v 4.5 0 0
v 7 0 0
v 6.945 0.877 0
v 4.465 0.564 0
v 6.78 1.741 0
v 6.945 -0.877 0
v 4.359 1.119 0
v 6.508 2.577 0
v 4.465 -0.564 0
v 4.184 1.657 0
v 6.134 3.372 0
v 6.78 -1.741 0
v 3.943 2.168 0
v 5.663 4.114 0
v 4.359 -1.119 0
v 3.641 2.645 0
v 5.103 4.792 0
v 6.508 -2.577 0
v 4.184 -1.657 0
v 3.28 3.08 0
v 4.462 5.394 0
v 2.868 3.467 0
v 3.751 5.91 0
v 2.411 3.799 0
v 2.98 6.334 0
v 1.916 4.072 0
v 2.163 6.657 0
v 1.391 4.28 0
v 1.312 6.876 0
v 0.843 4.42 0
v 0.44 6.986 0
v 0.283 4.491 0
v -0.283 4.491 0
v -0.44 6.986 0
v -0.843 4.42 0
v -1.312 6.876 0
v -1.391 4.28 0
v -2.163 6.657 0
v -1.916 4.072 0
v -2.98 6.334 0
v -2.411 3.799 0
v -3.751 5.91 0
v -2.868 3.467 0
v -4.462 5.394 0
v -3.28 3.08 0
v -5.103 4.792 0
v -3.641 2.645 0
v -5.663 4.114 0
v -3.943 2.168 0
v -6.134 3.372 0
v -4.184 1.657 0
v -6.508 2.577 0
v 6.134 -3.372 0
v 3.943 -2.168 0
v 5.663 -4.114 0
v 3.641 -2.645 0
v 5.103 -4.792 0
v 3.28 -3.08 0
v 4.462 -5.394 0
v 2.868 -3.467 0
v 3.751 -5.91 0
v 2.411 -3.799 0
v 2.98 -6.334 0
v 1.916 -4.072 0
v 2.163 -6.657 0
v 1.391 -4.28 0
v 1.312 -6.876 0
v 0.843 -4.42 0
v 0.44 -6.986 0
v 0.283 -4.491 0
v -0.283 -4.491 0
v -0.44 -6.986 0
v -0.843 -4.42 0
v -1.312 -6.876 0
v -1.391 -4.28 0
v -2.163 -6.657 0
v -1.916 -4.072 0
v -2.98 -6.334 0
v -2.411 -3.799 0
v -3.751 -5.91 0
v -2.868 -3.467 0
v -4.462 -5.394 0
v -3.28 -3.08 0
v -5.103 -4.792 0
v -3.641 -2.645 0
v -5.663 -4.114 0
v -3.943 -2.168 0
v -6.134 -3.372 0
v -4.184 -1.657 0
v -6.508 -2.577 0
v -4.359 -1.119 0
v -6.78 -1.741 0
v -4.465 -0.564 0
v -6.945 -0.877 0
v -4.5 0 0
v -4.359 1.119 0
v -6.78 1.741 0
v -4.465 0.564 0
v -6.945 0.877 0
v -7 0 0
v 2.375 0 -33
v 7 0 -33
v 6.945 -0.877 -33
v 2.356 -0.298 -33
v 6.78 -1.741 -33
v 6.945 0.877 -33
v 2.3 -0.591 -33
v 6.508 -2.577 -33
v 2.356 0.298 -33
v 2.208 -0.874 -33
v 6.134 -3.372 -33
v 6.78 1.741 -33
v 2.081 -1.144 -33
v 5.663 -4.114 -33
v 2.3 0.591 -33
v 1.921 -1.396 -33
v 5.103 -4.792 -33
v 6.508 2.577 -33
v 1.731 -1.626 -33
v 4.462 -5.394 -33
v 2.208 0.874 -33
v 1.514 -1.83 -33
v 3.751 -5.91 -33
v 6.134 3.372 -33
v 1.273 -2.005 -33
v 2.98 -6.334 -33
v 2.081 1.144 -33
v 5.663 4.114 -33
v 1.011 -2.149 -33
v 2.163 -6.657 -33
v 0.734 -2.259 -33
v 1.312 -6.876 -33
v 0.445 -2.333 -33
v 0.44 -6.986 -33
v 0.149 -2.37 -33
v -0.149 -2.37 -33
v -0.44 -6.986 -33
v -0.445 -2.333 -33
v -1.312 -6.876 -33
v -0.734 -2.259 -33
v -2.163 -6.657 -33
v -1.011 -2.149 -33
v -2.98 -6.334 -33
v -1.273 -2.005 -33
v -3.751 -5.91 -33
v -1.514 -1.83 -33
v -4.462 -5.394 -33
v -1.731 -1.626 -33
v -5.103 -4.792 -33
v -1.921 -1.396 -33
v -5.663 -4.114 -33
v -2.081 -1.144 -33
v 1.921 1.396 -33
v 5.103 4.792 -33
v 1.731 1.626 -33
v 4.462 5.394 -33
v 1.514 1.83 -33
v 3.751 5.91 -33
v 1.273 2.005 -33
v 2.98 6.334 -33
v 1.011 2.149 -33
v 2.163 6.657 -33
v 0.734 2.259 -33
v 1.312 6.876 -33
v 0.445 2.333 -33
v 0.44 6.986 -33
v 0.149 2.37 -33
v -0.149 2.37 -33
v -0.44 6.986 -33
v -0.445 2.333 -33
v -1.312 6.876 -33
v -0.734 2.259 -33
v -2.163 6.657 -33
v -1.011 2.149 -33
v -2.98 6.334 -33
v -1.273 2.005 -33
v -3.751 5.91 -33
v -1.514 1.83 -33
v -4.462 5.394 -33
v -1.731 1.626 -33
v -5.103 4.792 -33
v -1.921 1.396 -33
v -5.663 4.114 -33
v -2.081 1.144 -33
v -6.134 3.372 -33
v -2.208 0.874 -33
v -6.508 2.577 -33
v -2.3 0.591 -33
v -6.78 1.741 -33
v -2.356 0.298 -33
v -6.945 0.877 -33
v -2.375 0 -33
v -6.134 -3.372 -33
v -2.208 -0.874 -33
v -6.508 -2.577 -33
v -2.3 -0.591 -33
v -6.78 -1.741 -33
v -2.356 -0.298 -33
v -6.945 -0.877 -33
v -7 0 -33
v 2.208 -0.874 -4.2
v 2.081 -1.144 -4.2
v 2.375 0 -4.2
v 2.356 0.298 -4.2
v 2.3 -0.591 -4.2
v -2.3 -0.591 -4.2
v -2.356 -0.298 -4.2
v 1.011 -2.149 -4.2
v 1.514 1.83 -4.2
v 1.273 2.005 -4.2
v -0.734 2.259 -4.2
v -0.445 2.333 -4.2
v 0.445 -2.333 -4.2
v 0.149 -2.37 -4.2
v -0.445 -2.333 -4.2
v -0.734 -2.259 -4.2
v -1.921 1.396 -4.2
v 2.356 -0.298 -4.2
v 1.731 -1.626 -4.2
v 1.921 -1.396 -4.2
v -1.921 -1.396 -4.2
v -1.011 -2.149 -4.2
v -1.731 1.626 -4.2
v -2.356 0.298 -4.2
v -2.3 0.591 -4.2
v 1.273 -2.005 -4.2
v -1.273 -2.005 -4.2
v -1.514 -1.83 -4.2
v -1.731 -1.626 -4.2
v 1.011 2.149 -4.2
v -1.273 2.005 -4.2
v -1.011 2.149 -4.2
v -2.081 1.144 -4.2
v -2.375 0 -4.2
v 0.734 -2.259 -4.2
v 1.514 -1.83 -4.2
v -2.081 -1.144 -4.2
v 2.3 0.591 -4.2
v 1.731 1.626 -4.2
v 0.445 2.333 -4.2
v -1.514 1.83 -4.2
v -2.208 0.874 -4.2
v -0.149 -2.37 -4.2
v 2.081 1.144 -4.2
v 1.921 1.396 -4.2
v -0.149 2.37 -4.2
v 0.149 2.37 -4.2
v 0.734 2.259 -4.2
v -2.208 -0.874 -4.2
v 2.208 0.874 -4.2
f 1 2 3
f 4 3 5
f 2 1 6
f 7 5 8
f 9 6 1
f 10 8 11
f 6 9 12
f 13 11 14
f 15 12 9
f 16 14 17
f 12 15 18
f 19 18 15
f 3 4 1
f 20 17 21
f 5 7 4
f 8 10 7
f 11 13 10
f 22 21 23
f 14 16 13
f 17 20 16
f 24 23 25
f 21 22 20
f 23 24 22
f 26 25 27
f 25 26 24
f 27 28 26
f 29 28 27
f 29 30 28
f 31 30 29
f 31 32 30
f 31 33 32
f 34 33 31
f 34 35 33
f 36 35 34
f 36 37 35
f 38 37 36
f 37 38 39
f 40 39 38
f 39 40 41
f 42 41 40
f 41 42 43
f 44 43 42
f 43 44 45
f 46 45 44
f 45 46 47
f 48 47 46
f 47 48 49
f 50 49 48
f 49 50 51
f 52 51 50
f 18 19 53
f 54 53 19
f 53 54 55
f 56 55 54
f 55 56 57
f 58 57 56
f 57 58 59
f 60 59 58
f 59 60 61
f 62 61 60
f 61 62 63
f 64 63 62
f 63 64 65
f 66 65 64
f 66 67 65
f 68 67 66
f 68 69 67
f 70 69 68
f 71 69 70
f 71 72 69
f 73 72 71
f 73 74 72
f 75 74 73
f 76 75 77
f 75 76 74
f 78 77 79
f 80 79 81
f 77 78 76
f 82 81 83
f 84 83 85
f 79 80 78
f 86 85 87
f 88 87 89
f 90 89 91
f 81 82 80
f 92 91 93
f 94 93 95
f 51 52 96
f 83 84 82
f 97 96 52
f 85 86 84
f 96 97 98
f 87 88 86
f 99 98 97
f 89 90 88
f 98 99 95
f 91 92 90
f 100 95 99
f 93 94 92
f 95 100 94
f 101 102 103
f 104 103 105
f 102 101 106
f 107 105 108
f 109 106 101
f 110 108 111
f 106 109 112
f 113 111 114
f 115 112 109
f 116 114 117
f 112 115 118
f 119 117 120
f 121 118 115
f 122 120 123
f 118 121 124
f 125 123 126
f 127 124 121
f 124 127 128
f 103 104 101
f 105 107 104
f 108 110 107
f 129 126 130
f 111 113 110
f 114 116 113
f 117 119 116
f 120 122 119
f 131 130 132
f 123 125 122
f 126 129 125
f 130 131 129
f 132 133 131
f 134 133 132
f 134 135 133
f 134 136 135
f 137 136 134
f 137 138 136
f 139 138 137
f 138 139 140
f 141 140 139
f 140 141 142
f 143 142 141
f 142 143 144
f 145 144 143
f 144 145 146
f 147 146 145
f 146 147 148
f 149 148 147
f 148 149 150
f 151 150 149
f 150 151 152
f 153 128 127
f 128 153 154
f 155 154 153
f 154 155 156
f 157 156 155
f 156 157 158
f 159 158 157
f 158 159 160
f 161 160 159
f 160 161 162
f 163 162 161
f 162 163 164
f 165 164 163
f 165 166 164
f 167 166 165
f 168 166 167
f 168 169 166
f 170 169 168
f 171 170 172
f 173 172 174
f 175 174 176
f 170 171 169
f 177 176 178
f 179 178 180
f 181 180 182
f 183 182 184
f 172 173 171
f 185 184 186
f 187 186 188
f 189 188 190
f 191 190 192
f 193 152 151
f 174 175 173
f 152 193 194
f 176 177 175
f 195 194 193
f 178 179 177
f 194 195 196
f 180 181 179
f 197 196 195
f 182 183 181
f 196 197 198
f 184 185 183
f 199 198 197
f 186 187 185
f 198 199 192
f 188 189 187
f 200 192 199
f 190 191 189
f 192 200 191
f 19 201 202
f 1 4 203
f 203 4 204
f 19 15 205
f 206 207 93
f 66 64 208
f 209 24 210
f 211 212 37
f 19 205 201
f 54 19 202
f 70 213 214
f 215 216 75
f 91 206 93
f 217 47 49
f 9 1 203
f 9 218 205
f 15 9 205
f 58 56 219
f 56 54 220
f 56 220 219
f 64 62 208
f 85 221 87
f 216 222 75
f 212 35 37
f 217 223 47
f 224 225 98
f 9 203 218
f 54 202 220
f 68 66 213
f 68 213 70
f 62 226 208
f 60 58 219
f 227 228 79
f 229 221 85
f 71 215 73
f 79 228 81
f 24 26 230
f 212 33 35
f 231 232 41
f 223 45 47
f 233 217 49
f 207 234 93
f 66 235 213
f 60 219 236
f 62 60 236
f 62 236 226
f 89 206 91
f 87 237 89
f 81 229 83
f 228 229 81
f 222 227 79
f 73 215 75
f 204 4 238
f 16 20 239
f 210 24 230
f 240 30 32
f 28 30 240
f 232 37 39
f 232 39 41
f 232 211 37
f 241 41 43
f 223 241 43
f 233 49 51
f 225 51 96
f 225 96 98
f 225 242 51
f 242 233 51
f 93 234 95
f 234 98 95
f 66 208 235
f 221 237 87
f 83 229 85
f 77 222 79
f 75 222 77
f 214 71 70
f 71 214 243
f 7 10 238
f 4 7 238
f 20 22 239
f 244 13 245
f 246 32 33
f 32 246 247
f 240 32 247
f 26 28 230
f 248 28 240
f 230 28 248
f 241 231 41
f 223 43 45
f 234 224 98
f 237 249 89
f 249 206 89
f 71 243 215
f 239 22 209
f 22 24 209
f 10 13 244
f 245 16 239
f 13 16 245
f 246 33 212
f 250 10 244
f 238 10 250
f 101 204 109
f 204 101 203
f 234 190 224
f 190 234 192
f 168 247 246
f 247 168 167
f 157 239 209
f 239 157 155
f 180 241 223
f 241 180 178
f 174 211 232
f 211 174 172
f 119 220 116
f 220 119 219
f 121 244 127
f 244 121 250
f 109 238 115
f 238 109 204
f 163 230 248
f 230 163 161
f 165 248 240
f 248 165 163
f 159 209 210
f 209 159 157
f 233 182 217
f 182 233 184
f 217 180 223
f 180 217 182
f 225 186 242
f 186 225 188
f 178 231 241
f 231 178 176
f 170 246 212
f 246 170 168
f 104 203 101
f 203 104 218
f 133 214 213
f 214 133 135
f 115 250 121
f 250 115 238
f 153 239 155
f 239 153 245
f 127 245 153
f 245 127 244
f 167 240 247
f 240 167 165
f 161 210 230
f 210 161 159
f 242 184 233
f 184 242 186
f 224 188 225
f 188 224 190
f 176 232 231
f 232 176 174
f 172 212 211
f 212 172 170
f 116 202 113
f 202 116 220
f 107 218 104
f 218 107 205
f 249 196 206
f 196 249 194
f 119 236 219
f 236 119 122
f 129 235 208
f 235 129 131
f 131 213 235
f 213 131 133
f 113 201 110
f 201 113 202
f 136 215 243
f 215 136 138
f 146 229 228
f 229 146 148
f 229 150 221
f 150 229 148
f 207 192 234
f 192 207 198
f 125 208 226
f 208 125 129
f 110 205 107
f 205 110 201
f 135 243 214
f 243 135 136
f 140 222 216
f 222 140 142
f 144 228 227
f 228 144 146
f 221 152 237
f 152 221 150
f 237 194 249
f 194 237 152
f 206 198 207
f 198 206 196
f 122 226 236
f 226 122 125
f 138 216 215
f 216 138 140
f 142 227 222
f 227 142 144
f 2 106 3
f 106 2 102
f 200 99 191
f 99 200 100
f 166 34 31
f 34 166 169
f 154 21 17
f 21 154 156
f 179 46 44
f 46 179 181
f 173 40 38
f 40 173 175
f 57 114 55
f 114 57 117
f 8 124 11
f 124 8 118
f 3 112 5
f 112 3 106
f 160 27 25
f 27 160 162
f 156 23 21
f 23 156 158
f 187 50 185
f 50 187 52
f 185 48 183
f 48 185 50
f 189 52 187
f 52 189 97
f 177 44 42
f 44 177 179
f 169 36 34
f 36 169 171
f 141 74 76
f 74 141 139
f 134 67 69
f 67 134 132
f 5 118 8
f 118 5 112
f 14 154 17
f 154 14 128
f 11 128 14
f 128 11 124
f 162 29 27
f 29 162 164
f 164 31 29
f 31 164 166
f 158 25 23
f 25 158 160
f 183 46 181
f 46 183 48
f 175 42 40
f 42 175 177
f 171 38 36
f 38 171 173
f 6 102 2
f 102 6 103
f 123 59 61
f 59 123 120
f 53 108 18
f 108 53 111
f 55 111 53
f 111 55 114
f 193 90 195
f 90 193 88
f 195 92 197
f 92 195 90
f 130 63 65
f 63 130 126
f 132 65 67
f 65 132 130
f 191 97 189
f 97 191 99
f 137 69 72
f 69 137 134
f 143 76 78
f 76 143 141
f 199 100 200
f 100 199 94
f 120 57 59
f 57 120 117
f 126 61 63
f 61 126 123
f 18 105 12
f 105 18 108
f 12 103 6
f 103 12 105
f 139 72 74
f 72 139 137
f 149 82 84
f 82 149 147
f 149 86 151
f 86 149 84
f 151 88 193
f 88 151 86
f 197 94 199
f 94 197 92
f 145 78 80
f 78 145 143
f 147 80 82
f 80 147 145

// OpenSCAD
$fn = 50;


difference() {
	union() {
		translate(v = [0, 0, -33.0000000000]) {
			cylinder(h = 33, r = 7.0000000000);
		}
		cylinder(h = 0, r = 13.0000000000);
	}
	union() {
		translate(v = [0, 0, 0]) {
			rotate(a = [0, 0, 0]) {
				difference() {
					union() {
						#translate(v = [0, 0, -33.0000000000]) {
							cylinder(h = 33, r = 2.2500000000);
						}
						#translate(v = [0, 0, -4.2000000000]) {
							cylinder(h = 4.2000000000, r = 7.0000000000, r1 = 2.3750000000, r2 = 4.5000000000);
						}
						#translate(v = [0, 0, -33.0000000000]) {
							cylinder(h = 33, r = 2.3750000000);
						}
						#translate(v = [0, 0, -33.0000000000]) {
							cylinder(h = 33, r = 2.2500000000);
						}
					}
					union();
				}
			}
		}
	}
}
